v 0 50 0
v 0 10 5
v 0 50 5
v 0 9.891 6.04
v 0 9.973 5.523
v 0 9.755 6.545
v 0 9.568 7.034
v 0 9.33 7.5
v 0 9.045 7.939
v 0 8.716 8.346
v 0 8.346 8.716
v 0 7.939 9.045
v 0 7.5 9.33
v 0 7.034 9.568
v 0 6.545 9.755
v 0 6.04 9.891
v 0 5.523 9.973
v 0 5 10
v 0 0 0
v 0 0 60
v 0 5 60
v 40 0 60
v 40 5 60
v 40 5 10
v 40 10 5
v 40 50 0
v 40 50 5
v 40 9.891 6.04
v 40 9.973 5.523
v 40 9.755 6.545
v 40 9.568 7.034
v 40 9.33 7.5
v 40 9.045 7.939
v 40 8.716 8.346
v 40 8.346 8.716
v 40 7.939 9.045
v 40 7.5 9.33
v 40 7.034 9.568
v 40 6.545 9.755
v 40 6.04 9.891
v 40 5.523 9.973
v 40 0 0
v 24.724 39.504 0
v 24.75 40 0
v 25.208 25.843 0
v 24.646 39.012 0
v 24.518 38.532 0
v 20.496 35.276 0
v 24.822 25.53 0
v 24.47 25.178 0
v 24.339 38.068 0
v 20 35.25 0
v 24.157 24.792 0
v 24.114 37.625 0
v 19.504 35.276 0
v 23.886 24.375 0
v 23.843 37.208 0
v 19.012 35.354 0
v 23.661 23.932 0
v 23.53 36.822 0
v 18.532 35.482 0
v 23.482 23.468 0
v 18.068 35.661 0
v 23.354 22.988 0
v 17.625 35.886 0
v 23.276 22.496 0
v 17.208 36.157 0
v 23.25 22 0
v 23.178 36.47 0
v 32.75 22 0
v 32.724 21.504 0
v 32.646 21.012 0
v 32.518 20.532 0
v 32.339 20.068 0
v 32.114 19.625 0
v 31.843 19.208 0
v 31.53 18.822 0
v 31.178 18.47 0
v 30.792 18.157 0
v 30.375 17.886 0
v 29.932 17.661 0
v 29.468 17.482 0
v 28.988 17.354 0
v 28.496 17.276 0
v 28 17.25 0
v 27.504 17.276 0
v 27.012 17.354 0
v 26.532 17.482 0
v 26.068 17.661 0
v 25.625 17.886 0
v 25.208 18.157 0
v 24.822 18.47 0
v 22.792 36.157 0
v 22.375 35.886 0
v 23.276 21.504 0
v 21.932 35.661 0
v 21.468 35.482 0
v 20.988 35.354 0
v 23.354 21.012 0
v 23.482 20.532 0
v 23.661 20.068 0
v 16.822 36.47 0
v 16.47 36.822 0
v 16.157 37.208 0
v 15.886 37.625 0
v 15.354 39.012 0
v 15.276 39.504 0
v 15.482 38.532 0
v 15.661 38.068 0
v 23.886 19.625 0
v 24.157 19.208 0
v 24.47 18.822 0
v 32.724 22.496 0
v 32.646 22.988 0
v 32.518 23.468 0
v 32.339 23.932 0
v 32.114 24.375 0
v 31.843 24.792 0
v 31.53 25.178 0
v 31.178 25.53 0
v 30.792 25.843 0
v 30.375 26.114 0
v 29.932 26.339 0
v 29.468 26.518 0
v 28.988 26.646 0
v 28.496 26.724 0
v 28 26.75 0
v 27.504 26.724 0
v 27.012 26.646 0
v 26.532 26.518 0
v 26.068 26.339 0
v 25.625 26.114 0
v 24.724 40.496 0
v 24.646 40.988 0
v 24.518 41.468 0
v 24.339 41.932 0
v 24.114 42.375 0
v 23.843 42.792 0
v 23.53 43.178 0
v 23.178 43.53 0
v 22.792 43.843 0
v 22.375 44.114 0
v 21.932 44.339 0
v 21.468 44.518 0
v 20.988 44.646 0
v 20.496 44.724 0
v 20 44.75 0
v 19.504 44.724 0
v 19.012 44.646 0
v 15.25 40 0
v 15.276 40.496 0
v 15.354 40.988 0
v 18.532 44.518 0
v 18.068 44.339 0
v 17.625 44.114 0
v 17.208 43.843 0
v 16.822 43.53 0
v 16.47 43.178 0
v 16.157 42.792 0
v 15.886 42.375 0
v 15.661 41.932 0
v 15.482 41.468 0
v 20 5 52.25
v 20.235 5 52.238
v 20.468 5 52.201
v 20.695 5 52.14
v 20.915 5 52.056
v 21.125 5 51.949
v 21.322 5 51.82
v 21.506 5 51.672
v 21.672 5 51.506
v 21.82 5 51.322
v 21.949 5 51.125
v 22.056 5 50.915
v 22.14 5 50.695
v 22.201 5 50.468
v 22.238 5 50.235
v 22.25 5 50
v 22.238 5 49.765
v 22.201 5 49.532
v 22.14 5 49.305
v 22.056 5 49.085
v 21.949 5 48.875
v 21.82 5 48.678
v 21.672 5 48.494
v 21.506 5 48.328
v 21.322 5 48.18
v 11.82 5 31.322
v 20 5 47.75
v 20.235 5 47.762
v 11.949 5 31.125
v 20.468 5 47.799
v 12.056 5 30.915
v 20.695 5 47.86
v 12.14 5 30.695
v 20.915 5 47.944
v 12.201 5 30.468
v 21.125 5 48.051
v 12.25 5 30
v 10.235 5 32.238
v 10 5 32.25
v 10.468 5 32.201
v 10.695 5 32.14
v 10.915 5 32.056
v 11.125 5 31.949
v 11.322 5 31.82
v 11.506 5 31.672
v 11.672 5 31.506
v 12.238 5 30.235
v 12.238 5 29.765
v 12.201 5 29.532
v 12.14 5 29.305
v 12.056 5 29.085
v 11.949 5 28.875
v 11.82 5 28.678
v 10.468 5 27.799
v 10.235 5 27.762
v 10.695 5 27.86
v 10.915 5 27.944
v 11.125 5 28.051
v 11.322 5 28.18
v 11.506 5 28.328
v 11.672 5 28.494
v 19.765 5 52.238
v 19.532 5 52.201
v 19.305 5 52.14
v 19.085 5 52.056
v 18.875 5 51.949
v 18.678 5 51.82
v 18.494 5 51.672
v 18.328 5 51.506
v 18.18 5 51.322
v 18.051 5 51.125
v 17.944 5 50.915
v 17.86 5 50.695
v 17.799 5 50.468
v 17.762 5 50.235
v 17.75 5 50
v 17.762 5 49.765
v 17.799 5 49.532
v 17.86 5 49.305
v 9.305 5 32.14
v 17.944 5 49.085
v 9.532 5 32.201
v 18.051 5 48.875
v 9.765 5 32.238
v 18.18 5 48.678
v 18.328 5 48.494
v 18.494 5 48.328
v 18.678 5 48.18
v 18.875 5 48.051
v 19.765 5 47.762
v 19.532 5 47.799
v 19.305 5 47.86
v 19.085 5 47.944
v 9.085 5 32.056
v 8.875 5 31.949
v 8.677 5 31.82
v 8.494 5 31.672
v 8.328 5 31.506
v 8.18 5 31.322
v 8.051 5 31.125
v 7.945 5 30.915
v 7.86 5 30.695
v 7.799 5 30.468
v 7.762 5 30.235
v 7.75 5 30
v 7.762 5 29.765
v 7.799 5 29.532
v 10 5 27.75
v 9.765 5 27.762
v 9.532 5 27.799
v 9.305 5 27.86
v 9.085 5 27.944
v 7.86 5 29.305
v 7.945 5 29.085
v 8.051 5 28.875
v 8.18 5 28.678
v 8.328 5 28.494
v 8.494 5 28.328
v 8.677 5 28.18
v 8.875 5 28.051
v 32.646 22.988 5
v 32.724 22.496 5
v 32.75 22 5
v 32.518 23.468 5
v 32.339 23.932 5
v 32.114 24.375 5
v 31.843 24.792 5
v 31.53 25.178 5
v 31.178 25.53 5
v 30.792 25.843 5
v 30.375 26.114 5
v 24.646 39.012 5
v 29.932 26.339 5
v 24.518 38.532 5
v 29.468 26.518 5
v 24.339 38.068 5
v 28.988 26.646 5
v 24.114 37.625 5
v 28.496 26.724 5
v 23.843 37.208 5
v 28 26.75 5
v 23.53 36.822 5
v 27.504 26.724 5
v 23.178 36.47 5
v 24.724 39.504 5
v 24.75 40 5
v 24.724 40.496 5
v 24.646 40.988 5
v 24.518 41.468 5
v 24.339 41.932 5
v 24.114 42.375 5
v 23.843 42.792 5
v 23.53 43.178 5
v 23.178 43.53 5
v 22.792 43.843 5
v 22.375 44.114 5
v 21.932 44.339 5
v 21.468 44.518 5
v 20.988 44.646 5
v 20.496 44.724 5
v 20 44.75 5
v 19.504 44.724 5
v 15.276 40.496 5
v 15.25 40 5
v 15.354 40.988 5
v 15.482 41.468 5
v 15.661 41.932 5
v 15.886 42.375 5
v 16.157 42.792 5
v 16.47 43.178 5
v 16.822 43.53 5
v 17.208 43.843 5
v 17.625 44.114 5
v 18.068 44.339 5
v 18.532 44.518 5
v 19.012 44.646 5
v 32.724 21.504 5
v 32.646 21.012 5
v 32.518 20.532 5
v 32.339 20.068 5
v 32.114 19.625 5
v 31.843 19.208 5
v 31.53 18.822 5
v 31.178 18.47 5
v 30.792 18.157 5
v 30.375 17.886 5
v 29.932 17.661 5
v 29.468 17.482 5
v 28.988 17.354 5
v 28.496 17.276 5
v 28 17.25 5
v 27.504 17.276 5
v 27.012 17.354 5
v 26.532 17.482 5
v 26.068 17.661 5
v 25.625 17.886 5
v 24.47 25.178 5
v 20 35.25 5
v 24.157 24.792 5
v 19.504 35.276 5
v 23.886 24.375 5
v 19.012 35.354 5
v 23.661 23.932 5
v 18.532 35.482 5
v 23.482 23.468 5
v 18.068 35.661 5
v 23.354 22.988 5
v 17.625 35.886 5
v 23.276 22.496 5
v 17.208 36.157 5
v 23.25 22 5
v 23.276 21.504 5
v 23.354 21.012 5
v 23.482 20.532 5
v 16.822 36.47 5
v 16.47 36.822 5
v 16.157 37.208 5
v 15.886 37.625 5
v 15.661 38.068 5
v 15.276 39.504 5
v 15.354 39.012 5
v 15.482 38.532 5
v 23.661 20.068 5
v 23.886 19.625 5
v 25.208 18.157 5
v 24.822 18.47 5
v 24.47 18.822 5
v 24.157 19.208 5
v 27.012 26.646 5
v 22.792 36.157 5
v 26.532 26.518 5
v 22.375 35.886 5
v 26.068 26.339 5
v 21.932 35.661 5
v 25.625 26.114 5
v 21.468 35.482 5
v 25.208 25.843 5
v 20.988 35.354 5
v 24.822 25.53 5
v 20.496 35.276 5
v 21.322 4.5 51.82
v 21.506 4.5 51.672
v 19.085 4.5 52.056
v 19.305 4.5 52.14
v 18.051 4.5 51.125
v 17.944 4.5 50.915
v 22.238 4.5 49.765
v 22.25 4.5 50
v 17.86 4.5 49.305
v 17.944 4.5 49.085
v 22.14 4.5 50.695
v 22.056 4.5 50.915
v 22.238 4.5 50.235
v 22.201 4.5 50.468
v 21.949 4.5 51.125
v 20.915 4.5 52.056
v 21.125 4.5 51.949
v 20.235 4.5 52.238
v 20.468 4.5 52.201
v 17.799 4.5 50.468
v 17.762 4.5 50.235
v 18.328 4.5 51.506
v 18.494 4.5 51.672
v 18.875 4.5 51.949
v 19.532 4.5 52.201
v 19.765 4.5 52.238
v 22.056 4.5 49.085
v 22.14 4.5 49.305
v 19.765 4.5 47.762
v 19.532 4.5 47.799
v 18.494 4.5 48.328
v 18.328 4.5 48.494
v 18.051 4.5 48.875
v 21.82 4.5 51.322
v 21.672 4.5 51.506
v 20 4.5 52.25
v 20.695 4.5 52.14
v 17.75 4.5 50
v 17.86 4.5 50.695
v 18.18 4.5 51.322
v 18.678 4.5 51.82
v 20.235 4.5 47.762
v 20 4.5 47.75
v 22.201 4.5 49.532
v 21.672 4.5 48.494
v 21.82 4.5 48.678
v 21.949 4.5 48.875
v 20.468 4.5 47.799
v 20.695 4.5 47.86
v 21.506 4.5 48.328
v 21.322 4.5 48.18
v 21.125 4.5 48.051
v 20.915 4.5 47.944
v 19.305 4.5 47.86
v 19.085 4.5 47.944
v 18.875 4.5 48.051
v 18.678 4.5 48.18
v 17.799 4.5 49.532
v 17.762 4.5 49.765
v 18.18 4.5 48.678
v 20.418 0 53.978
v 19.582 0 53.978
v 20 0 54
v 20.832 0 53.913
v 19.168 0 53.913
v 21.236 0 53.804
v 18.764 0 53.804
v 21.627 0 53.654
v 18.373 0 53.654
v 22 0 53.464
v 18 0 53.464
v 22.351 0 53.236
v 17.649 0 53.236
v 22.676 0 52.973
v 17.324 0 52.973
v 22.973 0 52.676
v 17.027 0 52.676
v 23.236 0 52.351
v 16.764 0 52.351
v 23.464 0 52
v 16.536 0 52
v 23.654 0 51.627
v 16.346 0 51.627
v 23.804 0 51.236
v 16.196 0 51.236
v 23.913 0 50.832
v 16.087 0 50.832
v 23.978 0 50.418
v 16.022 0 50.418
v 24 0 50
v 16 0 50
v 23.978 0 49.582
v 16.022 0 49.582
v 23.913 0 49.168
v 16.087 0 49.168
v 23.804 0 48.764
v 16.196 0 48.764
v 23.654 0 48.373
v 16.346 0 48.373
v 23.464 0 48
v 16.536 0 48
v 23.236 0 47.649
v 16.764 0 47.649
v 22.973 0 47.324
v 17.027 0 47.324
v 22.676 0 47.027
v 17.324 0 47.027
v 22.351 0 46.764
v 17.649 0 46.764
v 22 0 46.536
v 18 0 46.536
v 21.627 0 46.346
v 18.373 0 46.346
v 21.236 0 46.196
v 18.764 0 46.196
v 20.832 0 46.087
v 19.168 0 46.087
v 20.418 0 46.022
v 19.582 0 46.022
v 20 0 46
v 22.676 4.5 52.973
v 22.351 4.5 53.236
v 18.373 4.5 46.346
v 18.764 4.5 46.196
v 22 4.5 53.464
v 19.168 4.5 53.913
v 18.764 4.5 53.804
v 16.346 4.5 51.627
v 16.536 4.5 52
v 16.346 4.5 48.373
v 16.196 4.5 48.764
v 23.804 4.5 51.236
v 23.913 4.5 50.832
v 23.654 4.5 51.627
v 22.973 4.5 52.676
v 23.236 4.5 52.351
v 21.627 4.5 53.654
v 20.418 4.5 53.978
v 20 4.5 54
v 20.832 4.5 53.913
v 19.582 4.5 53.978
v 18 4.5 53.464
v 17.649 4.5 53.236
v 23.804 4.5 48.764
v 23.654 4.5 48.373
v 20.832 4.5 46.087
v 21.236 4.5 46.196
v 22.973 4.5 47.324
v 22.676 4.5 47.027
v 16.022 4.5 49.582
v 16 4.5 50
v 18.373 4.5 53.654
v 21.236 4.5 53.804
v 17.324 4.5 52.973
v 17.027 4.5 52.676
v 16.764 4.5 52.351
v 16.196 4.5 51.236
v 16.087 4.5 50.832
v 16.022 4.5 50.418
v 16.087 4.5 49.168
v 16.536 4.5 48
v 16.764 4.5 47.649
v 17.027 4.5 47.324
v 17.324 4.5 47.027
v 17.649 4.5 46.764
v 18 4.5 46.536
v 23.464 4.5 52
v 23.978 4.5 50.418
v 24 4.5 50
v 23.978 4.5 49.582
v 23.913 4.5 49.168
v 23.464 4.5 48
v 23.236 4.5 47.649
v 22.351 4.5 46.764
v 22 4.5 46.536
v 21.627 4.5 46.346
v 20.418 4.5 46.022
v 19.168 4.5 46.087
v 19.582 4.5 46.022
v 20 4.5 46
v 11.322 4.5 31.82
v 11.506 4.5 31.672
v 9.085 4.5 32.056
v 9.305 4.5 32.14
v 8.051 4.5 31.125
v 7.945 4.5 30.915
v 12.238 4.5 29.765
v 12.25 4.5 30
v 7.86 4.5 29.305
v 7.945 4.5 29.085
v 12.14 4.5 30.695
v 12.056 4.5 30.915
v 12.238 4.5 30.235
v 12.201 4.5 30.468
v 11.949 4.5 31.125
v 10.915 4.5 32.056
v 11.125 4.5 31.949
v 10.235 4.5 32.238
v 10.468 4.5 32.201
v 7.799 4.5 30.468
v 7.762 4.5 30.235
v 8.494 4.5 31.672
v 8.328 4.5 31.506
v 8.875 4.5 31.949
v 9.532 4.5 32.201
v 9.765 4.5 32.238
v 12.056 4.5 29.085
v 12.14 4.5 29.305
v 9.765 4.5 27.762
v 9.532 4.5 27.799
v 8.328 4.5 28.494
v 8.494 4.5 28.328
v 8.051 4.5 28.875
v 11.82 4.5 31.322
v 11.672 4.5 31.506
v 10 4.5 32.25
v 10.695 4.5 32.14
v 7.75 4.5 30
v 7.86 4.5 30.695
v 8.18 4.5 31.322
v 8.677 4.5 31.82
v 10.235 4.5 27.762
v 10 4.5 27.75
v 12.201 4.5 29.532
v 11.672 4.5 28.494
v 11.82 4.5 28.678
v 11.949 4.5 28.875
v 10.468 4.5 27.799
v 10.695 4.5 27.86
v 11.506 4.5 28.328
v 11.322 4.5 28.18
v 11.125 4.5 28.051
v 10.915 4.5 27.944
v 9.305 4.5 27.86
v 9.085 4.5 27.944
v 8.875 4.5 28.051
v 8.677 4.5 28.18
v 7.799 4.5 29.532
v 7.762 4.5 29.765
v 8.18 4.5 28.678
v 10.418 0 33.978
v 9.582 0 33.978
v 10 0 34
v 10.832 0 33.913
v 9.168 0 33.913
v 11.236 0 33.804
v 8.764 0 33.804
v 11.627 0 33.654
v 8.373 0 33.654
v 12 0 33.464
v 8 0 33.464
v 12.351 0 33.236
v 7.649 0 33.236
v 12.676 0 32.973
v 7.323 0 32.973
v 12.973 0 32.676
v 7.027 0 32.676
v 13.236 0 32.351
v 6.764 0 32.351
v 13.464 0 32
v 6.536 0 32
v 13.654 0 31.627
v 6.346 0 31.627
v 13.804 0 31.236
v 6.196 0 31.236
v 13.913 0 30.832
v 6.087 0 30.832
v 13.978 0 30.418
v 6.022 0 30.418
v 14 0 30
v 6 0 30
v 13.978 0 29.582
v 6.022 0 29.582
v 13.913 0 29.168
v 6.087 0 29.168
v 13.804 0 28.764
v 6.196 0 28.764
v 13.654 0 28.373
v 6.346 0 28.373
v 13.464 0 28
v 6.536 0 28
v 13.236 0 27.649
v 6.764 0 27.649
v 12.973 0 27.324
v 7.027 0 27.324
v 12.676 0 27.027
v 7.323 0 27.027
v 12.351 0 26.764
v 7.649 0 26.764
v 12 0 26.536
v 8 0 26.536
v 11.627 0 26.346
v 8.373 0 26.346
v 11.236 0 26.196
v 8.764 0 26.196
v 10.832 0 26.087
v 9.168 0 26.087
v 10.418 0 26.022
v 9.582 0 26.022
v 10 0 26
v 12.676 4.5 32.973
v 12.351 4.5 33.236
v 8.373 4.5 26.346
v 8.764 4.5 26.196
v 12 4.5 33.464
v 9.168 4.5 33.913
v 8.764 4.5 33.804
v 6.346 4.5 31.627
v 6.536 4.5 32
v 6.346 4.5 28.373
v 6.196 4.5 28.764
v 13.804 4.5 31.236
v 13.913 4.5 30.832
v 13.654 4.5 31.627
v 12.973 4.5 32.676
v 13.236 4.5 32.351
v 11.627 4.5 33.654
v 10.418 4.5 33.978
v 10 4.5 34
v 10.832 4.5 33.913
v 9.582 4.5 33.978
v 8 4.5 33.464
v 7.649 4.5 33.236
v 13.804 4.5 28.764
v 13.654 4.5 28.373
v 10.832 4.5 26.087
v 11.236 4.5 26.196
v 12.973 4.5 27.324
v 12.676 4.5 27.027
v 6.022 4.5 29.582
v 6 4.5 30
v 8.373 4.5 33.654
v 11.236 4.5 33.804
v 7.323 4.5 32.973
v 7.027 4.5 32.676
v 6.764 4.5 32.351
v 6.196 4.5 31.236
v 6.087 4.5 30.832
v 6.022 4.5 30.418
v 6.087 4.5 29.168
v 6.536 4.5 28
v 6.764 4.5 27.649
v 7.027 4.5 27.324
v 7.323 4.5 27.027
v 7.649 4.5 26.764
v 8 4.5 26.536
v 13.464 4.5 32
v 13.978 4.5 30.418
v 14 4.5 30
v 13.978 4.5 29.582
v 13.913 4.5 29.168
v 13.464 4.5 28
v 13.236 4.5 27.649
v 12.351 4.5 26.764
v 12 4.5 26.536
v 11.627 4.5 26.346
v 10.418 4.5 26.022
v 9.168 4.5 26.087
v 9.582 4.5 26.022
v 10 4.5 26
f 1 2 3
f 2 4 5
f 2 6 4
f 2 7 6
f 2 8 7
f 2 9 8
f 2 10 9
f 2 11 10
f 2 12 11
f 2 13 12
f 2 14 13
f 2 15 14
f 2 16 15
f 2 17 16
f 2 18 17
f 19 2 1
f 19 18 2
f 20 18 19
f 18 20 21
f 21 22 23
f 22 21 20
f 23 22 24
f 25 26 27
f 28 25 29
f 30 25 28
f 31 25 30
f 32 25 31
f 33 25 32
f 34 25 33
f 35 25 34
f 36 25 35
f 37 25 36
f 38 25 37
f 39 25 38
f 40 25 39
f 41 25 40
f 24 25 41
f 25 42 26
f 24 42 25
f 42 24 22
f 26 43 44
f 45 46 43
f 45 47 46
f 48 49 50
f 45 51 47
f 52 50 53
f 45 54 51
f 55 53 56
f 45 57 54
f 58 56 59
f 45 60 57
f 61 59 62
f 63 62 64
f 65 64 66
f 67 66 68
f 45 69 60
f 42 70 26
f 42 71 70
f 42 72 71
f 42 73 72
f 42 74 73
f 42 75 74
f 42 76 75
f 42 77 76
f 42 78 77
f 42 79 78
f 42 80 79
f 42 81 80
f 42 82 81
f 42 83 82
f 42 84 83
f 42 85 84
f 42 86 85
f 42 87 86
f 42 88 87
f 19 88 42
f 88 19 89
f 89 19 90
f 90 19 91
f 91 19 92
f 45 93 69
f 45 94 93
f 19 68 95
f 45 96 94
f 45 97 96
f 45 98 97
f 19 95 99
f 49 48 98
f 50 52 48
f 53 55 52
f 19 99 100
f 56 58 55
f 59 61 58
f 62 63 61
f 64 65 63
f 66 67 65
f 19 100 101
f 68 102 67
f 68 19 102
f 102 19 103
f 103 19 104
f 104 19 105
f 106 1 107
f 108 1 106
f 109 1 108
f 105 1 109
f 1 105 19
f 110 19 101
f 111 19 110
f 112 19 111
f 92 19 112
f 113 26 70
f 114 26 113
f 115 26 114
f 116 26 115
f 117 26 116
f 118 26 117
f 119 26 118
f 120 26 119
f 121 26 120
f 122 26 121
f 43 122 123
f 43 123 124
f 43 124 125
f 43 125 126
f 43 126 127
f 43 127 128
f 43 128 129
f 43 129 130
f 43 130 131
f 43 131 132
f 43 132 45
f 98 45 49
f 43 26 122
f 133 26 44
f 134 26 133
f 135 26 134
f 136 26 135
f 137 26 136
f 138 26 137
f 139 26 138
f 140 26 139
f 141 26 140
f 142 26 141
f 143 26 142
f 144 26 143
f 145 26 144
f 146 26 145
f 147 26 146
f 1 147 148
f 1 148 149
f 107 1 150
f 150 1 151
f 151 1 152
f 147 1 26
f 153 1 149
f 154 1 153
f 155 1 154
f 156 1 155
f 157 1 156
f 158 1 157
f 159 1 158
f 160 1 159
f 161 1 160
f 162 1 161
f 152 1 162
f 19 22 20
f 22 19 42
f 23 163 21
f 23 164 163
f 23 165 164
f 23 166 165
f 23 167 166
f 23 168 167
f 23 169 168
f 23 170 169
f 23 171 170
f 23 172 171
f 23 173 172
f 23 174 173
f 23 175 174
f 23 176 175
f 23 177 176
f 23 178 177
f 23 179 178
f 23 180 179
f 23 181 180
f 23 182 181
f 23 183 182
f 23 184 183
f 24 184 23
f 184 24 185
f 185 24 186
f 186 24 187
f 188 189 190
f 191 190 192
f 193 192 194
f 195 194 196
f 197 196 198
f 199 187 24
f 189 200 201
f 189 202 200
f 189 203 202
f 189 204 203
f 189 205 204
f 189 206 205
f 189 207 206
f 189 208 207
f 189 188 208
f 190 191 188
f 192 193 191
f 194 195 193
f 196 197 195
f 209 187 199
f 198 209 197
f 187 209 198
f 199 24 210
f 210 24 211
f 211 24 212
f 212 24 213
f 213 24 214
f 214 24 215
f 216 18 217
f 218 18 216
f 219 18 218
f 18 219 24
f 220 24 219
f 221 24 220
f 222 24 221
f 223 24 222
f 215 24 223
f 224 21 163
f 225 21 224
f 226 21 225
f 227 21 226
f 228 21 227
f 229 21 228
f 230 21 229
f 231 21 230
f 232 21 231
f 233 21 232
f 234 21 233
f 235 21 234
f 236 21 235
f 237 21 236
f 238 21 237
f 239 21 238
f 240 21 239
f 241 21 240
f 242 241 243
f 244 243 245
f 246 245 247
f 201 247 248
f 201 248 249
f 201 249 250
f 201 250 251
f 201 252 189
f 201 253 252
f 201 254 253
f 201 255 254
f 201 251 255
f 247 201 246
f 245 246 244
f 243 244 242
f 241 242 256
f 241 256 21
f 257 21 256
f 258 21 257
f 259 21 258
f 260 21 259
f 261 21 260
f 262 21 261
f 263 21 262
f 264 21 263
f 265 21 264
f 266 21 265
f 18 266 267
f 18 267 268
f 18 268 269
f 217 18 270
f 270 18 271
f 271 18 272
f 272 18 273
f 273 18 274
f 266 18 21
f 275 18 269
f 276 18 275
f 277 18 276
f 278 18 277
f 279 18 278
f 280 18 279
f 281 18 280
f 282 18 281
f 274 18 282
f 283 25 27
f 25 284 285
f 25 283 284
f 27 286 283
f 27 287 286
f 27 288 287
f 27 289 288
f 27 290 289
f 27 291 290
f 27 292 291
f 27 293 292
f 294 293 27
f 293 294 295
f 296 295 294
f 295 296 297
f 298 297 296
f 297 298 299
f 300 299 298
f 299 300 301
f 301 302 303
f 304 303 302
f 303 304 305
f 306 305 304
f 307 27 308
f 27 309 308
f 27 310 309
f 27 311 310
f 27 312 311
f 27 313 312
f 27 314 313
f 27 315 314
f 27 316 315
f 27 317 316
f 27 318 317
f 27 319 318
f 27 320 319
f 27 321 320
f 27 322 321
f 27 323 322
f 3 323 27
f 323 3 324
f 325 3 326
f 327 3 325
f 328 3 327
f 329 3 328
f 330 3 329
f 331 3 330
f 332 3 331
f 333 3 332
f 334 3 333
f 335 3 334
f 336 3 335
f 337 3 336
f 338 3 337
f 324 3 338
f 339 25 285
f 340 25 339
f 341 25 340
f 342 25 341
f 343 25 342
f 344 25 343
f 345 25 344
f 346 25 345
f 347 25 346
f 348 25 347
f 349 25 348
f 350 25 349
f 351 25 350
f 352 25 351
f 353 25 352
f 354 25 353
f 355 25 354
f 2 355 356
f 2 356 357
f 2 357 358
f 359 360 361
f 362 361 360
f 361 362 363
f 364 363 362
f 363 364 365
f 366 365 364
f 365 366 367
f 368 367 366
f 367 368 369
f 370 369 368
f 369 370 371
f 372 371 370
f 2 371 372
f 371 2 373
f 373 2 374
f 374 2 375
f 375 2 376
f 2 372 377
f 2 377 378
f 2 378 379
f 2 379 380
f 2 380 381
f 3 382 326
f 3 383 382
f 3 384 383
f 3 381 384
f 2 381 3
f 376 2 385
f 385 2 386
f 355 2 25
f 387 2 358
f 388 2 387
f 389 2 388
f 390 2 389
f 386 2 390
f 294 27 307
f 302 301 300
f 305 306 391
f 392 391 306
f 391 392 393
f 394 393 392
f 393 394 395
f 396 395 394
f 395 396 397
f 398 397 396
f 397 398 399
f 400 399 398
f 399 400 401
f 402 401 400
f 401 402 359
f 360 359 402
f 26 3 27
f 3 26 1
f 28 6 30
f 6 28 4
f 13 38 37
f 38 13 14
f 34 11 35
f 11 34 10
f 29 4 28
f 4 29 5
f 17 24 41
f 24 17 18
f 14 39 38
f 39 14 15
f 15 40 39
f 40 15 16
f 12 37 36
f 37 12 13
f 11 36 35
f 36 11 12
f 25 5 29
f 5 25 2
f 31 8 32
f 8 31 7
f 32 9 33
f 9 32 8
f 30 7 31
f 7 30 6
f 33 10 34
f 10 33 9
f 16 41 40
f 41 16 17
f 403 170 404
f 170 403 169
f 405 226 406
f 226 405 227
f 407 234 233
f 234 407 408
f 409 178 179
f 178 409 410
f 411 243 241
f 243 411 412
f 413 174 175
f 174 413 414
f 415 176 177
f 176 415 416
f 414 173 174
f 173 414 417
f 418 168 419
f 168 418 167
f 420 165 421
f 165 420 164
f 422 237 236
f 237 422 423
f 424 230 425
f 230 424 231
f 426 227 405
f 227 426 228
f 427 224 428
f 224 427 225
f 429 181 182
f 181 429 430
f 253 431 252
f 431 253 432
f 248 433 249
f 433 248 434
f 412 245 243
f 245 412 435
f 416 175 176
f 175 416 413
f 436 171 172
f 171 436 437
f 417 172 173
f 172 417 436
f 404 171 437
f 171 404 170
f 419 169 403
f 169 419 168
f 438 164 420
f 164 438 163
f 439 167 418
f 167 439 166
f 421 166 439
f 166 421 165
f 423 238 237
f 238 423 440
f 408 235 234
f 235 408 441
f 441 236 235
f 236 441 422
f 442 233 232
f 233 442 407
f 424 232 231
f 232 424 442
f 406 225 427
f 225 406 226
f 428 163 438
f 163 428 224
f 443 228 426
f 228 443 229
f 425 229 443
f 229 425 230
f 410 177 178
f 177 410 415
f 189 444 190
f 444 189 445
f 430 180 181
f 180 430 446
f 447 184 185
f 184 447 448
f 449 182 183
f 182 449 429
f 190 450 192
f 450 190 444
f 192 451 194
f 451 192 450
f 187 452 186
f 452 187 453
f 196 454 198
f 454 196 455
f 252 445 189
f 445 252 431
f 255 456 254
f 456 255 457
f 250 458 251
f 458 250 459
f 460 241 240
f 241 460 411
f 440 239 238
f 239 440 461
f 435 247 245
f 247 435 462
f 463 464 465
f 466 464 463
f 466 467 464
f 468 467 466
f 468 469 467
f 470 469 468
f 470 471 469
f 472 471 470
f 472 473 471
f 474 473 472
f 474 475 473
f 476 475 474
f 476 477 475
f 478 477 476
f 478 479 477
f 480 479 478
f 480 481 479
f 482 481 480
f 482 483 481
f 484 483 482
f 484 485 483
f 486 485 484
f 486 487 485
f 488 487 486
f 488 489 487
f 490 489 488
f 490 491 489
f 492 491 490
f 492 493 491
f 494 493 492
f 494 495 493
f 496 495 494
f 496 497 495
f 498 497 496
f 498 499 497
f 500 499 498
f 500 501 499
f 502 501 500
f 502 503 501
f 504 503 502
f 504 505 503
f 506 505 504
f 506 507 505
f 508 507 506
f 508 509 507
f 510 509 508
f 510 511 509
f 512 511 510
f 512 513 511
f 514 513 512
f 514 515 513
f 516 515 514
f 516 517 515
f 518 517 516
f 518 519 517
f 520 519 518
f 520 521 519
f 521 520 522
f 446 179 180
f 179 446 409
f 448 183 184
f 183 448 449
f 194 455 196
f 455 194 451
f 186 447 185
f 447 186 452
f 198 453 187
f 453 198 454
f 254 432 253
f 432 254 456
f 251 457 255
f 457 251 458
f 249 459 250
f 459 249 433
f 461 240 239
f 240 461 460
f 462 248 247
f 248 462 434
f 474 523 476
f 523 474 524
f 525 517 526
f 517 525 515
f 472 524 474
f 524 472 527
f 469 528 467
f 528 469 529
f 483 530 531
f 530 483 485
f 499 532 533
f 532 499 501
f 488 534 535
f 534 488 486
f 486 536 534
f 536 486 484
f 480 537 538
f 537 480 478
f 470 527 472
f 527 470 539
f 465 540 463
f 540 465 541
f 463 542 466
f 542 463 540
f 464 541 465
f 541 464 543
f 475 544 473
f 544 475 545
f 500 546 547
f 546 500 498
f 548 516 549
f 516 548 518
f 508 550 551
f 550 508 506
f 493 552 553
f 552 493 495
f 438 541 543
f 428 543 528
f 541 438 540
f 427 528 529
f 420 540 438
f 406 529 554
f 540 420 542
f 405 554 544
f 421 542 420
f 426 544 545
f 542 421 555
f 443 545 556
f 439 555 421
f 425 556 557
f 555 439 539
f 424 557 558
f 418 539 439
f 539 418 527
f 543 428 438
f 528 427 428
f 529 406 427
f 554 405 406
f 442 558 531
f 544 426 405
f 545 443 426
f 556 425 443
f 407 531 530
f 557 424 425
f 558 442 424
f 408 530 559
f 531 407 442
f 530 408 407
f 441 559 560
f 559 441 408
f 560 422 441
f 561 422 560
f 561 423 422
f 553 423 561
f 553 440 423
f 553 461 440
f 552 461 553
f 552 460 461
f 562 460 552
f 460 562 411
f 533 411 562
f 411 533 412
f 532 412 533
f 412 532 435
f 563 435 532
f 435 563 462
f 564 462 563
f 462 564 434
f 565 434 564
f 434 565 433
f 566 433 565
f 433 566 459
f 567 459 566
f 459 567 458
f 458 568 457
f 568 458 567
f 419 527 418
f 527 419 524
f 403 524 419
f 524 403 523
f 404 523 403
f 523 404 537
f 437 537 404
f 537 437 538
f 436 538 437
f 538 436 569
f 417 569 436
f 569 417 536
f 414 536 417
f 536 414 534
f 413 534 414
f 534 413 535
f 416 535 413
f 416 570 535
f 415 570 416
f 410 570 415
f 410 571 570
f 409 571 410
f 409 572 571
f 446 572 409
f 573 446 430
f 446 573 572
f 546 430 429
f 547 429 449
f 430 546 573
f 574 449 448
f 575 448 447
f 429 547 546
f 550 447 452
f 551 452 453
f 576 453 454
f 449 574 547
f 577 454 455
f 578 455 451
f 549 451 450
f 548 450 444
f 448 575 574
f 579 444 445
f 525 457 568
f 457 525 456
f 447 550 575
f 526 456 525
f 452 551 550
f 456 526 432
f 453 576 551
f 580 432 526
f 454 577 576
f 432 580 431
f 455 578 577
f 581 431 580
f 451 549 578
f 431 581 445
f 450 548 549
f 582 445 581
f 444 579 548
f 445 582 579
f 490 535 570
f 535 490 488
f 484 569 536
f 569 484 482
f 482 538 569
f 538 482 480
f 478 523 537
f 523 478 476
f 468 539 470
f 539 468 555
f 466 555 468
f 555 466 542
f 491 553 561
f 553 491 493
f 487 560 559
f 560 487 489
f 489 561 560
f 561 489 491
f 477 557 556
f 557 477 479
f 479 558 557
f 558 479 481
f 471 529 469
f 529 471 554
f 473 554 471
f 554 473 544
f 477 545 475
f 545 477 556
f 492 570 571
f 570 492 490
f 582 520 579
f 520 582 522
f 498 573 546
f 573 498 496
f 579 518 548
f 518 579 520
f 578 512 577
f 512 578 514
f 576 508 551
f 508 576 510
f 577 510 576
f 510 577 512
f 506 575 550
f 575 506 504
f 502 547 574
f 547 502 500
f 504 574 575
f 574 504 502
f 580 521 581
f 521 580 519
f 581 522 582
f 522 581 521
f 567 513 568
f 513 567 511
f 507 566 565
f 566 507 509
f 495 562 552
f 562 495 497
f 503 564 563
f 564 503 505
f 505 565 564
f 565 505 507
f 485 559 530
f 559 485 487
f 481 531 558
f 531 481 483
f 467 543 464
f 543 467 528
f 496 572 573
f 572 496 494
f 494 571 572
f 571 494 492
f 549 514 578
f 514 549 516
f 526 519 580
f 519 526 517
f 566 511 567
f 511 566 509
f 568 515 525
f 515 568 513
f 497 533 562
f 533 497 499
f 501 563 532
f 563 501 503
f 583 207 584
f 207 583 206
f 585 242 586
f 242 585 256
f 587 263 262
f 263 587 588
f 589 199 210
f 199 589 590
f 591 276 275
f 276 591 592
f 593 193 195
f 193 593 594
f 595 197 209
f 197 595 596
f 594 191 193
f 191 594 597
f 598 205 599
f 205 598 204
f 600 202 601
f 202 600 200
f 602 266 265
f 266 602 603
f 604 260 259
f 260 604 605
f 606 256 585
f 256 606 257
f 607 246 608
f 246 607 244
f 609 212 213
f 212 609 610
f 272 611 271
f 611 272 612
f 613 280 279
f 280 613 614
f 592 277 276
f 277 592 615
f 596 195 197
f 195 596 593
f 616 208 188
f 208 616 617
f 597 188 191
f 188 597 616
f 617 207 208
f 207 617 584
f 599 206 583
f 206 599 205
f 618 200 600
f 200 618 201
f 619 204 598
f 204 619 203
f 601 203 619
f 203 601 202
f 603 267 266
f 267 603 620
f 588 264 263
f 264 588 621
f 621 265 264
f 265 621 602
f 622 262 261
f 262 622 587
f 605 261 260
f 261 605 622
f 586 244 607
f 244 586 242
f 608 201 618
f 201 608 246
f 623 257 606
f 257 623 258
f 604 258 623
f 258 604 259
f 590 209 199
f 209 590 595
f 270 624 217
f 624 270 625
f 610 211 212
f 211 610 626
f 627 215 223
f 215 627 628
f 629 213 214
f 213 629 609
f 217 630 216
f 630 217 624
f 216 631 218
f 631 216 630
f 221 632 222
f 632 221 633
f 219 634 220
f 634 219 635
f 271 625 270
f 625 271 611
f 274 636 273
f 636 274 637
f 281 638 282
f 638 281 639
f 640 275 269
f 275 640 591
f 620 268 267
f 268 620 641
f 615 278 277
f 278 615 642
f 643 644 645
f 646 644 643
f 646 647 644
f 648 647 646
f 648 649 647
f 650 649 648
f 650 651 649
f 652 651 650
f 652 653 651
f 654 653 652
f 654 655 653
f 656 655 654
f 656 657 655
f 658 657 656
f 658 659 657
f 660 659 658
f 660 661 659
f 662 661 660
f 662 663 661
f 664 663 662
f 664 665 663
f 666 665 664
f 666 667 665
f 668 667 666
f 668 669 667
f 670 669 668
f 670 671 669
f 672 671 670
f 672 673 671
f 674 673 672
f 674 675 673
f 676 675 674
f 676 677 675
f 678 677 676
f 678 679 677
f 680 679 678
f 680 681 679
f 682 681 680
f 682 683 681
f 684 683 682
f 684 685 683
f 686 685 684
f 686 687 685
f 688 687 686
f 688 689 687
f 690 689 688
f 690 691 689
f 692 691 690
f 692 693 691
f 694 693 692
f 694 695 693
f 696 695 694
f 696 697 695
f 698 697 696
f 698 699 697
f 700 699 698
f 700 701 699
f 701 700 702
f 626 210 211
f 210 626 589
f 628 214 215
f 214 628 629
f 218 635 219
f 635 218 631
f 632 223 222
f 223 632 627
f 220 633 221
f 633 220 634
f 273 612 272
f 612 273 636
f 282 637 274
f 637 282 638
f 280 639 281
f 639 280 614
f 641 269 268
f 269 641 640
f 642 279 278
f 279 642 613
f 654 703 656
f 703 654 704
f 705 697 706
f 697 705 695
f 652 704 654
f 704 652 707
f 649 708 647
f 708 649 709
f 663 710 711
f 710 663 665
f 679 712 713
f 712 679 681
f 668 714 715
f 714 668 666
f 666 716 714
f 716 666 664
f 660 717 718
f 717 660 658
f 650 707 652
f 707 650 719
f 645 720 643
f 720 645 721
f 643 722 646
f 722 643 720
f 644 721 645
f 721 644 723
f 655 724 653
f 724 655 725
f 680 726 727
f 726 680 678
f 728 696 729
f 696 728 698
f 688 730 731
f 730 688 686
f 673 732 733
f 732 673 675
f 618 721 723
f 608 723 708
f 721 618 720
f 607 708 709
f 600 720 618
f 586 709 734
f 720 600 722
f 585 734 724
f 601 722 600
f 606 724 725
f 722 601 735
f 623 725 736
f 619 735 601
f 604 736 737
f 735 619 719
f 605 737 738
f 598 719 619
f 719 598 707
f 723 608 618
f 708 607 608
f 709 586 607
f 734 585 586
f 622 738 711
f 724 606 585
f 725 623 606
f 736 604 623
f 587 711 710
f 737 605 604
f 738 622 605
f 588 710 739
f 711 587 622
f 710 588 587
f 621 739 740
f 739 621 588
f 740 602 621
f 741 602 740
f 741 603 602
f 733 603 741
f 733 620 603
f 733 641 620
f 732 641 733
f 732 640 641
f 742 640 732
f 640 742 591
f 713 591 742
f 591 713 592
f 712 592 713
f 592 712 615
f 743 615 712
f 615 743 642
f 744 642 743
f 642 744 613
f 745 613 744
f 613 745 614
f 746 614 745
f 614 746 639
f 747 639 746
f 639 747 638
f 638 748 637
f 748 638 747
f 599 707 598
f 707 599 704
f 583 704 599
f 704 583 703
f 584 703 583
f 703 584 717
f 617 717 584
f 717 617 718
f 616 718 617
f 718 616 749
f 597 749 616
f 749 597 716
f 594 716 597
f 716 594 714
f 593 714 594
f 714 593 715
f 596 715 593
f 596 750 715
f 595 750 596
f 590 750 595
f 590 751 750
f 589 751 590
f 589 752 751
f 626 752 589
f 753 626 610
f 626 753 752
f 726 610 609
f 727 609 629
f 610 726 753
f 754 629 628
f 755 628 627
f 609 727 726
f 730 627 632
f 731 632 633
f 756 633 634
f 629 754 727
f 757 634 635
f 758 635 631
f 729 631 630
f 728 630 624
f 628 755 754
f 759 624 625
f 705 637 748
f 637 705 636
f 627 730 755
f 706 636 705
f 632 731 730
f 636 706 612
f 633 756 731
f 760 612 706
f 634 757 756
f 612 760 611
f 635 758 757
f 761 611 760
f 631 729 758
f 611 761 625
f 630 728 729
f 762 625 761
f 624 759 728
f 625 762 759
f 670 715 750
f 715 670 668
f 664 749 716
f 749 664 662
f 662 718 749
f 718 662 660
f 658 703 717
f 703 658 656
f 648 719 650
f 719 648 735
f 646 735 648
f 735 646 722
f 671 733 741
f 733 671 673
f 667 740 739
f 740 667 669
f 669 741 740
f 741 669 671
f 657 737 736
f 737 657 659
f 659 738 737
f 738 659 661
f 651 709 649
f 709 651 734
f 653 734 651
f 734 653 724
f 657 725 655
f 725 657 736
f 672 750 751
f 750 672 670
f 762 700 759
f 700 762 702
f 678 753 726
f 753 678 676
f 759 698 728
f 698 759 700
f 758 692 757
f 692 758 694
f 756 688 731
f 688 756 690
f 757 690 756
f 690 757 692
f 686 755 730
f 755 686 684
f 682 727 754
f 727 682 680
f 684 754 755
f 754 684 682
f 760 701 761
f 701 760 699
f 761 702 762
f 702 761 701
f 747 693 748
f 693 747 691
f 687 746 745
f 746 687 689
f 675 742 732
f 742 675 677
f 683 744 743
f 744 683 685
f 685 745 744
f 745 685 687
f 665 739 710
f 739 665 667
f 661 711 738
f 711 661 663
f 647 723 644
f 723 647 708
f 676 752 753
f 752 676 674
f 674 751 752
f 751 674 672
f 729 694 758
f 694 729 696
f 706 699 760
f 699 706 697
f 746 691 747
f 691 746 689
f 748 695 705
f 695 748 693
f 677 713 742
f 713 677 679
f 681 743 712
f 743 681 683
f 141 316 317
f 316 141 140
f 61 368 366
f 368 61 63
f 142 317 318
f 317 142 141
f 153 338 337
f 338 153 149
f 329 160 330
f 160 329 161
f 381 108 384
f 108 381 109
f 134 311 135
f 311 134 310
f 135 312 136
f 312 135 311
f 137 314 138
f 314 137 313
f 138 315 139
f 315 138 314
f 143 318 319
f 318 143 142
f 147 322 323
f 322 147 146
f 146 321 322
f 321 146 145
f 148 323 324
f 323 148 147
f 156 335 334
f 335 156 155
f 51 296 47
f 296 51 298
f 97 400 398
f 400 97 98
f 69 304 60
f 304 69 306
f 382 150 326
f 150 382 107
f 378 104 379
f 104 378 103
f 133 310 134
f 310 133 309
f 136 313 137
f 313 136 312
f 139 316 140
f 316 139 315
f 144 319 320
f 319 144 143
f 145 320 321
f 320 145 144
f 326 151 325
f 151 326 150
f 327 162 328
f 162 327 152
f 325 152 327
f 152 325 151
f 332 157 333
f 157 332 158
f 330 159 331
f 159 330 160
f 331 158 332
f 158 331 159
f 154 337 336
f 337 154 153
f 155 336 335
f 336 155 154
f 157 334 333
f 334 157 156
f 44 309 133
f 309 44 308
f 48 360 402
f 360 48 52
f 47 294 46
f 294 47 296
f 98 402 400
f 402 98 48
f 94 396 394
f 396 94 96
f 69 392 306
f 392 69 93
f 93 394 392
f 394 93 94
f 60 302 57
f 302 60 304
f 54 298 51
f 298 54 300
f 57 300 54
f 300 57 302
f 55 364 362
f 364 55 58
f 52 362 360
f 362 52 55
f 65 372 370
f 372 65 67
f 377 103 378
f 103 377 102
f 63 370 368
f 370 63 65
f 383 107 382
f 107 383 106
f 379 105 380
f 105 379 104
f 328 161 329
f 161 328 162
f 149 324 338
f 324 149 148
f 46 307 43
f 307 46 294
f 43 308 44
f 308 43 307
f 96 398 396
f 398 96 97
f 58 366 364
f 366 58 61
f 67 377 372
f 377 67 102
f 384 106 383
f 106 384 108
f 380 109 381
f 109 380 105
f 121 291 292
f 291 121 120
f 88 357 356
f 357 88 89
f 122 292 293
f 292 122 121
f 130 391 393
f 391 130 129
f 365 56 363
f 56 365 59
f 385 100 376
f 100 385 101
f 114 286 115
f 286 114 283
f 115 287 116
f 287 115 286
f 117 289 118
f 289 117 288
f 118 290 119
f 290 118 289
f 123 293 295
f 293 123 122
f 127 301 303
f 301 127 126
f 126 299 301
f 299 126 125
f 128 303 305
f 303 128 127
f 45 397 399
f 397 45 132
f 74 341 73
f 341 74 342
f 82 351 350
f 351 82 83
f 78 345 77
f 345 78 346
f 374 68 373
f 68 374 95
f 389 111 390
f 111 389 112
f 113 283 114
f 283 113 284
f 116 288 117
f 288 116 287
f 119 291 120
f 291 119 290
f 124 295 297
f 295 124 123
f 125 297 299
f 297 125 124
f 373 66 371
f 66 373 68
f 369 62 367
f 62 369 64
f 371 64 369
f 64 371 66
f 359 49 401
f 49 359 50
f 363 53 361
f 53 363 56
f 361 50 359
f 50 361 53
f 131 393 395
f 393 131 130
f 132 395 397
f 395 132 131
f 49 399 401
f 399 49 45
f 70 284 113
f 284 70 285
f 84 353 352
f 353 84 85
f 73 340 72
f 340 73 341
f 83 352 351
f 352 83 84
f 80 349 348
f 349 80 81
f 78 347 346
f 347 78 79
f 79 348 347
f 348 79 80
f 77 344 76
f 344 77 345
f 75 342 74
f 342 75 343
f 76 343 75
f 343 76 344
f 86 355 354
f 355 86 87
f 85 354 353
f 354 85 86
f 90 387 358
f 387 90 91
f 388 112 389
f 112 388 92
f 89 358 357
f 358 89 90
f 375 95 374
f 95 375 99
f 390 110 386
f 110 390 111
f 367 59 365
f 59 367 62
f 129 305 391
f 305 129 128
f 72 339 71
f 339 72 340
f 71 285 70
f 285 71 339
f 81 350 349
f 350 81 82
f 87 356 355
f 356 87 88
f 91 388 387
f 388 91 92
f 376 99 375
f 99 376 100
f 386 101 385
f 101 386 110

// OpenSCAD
// OpenSCAD L-Bracket Generator
// Based on implied requirements for reference.png
// Units: mm

/* [Global Dimensions] */
thickness = 5.0;        // Thickness of the bracket walls
width = 40.0;           // Width of the bracket
leg_vertical_len = 60.0;  // Exterior height of the vertical leg (Sensor side)
leg_horizontal_len = 50.0; // Exterior length of the horizontal leg (Frame side)
corner_radius = 2.0;    // Fillet radius for the outer corner (0 for sharp)

/* [Hole Configuration] */
// Standard M4 counterbore dimensions
m4_holedia = 4.5;
m4_head_dia = 8.0;
m4_head_depth = 4.4; // Slightly deeper to ensure flushness

// Standard M5 counterbore dimensions
m5_holedia = 5.5;
m5_head_dia = 9.5;
m5_head_depth = 5.4;

/* [Render Settings] */
$fn = 60; // Resolution for circles
epsilon = 0.1; // Small overlap to prevent z-fighting

module counterbored_hole(shank_dia, head_dia, head_depth, plate_thick) {
    // The thru-hole
    translate([0, 0, -epsilon])
        cylinder(d = shank_dia, h = plate_thick + 2*epsilon);
    
    // The counterbore
    translate([0, 0, plate_thick - head_depth])
        cylinder(d = head_dia, h = head_depth + epsilon);
}

module rounded_L_bracket() {
    difference() {
        // Positive geometry: The L-Shape Body
        union() {
            // Vertical Leg
            translate([0, 0, 0])
                cube([width, thickness, leg_vertical_len]);
            
            // Horizontal Leg
            translate([0, 0, 0])
                cube([width, leg_horizontal_len, thickness]);
            
            // Corner Fillet (Reinforcement)
            translate([0, thickness, thickness])
                rotate([0, 90, 0])
                cylinder(r=thickness, h=width);
        }

        // Negative geometry: The Hole Pattern
        // Note: Coordinates are relative to the outer corner
        
        // --- Vertical Leg Holes (Sensor Side) ---
        // Hole 1: Top Center
        translate([width/2, thickness + epsilon, leg_vertical_len - 10])
            rotate([90, 0, 0])
            counterbored_hole(m4_holedia, m4_head_dia, m4_head_depth, thickness);

        // Hole 2: Lower, Offset Left (Irregular pattern)
        translate([width/2 - 10, thickness + epsilon, leg_vertical_len - 30])
            rotate([90, 0, 0])
            counterbored_hole(m4_holedia, m4_head_dia, m4_head_depth, thickness);
            
        // --- Horizontal Leg Holes (Frame Side) ---
        // Hole 3: Far Tip, Center
        translate([width/2, leg_horizontal_len - 10, 0])
            counterbored_hole(m5_holedia, m5_head_dia, m5_head_depth, thickness);

        // Hole 4: Mid-body, Offset Right (Irregular pattern)
        translate([width/2 + 8, leg_horizontal_len - 28, 0])
            counterbored_hole(m5_holedia, m5_head_dia, m5_head_depth, thickness);
            
        // Clean up the inner corner fillet overlap
        difference() {
             translate([-epsilon, thickness, thickness])
                cube([width + 2*epsilon, thickness, thickness]);
             
             translate([-2*epsilon, thickness, thickness])
                rotate([0, 90, 0])
                cylinder(r=thickness, h=width + 4*epsilon);
        }
    }
}

// Render the part
rounded_L_bracket();
